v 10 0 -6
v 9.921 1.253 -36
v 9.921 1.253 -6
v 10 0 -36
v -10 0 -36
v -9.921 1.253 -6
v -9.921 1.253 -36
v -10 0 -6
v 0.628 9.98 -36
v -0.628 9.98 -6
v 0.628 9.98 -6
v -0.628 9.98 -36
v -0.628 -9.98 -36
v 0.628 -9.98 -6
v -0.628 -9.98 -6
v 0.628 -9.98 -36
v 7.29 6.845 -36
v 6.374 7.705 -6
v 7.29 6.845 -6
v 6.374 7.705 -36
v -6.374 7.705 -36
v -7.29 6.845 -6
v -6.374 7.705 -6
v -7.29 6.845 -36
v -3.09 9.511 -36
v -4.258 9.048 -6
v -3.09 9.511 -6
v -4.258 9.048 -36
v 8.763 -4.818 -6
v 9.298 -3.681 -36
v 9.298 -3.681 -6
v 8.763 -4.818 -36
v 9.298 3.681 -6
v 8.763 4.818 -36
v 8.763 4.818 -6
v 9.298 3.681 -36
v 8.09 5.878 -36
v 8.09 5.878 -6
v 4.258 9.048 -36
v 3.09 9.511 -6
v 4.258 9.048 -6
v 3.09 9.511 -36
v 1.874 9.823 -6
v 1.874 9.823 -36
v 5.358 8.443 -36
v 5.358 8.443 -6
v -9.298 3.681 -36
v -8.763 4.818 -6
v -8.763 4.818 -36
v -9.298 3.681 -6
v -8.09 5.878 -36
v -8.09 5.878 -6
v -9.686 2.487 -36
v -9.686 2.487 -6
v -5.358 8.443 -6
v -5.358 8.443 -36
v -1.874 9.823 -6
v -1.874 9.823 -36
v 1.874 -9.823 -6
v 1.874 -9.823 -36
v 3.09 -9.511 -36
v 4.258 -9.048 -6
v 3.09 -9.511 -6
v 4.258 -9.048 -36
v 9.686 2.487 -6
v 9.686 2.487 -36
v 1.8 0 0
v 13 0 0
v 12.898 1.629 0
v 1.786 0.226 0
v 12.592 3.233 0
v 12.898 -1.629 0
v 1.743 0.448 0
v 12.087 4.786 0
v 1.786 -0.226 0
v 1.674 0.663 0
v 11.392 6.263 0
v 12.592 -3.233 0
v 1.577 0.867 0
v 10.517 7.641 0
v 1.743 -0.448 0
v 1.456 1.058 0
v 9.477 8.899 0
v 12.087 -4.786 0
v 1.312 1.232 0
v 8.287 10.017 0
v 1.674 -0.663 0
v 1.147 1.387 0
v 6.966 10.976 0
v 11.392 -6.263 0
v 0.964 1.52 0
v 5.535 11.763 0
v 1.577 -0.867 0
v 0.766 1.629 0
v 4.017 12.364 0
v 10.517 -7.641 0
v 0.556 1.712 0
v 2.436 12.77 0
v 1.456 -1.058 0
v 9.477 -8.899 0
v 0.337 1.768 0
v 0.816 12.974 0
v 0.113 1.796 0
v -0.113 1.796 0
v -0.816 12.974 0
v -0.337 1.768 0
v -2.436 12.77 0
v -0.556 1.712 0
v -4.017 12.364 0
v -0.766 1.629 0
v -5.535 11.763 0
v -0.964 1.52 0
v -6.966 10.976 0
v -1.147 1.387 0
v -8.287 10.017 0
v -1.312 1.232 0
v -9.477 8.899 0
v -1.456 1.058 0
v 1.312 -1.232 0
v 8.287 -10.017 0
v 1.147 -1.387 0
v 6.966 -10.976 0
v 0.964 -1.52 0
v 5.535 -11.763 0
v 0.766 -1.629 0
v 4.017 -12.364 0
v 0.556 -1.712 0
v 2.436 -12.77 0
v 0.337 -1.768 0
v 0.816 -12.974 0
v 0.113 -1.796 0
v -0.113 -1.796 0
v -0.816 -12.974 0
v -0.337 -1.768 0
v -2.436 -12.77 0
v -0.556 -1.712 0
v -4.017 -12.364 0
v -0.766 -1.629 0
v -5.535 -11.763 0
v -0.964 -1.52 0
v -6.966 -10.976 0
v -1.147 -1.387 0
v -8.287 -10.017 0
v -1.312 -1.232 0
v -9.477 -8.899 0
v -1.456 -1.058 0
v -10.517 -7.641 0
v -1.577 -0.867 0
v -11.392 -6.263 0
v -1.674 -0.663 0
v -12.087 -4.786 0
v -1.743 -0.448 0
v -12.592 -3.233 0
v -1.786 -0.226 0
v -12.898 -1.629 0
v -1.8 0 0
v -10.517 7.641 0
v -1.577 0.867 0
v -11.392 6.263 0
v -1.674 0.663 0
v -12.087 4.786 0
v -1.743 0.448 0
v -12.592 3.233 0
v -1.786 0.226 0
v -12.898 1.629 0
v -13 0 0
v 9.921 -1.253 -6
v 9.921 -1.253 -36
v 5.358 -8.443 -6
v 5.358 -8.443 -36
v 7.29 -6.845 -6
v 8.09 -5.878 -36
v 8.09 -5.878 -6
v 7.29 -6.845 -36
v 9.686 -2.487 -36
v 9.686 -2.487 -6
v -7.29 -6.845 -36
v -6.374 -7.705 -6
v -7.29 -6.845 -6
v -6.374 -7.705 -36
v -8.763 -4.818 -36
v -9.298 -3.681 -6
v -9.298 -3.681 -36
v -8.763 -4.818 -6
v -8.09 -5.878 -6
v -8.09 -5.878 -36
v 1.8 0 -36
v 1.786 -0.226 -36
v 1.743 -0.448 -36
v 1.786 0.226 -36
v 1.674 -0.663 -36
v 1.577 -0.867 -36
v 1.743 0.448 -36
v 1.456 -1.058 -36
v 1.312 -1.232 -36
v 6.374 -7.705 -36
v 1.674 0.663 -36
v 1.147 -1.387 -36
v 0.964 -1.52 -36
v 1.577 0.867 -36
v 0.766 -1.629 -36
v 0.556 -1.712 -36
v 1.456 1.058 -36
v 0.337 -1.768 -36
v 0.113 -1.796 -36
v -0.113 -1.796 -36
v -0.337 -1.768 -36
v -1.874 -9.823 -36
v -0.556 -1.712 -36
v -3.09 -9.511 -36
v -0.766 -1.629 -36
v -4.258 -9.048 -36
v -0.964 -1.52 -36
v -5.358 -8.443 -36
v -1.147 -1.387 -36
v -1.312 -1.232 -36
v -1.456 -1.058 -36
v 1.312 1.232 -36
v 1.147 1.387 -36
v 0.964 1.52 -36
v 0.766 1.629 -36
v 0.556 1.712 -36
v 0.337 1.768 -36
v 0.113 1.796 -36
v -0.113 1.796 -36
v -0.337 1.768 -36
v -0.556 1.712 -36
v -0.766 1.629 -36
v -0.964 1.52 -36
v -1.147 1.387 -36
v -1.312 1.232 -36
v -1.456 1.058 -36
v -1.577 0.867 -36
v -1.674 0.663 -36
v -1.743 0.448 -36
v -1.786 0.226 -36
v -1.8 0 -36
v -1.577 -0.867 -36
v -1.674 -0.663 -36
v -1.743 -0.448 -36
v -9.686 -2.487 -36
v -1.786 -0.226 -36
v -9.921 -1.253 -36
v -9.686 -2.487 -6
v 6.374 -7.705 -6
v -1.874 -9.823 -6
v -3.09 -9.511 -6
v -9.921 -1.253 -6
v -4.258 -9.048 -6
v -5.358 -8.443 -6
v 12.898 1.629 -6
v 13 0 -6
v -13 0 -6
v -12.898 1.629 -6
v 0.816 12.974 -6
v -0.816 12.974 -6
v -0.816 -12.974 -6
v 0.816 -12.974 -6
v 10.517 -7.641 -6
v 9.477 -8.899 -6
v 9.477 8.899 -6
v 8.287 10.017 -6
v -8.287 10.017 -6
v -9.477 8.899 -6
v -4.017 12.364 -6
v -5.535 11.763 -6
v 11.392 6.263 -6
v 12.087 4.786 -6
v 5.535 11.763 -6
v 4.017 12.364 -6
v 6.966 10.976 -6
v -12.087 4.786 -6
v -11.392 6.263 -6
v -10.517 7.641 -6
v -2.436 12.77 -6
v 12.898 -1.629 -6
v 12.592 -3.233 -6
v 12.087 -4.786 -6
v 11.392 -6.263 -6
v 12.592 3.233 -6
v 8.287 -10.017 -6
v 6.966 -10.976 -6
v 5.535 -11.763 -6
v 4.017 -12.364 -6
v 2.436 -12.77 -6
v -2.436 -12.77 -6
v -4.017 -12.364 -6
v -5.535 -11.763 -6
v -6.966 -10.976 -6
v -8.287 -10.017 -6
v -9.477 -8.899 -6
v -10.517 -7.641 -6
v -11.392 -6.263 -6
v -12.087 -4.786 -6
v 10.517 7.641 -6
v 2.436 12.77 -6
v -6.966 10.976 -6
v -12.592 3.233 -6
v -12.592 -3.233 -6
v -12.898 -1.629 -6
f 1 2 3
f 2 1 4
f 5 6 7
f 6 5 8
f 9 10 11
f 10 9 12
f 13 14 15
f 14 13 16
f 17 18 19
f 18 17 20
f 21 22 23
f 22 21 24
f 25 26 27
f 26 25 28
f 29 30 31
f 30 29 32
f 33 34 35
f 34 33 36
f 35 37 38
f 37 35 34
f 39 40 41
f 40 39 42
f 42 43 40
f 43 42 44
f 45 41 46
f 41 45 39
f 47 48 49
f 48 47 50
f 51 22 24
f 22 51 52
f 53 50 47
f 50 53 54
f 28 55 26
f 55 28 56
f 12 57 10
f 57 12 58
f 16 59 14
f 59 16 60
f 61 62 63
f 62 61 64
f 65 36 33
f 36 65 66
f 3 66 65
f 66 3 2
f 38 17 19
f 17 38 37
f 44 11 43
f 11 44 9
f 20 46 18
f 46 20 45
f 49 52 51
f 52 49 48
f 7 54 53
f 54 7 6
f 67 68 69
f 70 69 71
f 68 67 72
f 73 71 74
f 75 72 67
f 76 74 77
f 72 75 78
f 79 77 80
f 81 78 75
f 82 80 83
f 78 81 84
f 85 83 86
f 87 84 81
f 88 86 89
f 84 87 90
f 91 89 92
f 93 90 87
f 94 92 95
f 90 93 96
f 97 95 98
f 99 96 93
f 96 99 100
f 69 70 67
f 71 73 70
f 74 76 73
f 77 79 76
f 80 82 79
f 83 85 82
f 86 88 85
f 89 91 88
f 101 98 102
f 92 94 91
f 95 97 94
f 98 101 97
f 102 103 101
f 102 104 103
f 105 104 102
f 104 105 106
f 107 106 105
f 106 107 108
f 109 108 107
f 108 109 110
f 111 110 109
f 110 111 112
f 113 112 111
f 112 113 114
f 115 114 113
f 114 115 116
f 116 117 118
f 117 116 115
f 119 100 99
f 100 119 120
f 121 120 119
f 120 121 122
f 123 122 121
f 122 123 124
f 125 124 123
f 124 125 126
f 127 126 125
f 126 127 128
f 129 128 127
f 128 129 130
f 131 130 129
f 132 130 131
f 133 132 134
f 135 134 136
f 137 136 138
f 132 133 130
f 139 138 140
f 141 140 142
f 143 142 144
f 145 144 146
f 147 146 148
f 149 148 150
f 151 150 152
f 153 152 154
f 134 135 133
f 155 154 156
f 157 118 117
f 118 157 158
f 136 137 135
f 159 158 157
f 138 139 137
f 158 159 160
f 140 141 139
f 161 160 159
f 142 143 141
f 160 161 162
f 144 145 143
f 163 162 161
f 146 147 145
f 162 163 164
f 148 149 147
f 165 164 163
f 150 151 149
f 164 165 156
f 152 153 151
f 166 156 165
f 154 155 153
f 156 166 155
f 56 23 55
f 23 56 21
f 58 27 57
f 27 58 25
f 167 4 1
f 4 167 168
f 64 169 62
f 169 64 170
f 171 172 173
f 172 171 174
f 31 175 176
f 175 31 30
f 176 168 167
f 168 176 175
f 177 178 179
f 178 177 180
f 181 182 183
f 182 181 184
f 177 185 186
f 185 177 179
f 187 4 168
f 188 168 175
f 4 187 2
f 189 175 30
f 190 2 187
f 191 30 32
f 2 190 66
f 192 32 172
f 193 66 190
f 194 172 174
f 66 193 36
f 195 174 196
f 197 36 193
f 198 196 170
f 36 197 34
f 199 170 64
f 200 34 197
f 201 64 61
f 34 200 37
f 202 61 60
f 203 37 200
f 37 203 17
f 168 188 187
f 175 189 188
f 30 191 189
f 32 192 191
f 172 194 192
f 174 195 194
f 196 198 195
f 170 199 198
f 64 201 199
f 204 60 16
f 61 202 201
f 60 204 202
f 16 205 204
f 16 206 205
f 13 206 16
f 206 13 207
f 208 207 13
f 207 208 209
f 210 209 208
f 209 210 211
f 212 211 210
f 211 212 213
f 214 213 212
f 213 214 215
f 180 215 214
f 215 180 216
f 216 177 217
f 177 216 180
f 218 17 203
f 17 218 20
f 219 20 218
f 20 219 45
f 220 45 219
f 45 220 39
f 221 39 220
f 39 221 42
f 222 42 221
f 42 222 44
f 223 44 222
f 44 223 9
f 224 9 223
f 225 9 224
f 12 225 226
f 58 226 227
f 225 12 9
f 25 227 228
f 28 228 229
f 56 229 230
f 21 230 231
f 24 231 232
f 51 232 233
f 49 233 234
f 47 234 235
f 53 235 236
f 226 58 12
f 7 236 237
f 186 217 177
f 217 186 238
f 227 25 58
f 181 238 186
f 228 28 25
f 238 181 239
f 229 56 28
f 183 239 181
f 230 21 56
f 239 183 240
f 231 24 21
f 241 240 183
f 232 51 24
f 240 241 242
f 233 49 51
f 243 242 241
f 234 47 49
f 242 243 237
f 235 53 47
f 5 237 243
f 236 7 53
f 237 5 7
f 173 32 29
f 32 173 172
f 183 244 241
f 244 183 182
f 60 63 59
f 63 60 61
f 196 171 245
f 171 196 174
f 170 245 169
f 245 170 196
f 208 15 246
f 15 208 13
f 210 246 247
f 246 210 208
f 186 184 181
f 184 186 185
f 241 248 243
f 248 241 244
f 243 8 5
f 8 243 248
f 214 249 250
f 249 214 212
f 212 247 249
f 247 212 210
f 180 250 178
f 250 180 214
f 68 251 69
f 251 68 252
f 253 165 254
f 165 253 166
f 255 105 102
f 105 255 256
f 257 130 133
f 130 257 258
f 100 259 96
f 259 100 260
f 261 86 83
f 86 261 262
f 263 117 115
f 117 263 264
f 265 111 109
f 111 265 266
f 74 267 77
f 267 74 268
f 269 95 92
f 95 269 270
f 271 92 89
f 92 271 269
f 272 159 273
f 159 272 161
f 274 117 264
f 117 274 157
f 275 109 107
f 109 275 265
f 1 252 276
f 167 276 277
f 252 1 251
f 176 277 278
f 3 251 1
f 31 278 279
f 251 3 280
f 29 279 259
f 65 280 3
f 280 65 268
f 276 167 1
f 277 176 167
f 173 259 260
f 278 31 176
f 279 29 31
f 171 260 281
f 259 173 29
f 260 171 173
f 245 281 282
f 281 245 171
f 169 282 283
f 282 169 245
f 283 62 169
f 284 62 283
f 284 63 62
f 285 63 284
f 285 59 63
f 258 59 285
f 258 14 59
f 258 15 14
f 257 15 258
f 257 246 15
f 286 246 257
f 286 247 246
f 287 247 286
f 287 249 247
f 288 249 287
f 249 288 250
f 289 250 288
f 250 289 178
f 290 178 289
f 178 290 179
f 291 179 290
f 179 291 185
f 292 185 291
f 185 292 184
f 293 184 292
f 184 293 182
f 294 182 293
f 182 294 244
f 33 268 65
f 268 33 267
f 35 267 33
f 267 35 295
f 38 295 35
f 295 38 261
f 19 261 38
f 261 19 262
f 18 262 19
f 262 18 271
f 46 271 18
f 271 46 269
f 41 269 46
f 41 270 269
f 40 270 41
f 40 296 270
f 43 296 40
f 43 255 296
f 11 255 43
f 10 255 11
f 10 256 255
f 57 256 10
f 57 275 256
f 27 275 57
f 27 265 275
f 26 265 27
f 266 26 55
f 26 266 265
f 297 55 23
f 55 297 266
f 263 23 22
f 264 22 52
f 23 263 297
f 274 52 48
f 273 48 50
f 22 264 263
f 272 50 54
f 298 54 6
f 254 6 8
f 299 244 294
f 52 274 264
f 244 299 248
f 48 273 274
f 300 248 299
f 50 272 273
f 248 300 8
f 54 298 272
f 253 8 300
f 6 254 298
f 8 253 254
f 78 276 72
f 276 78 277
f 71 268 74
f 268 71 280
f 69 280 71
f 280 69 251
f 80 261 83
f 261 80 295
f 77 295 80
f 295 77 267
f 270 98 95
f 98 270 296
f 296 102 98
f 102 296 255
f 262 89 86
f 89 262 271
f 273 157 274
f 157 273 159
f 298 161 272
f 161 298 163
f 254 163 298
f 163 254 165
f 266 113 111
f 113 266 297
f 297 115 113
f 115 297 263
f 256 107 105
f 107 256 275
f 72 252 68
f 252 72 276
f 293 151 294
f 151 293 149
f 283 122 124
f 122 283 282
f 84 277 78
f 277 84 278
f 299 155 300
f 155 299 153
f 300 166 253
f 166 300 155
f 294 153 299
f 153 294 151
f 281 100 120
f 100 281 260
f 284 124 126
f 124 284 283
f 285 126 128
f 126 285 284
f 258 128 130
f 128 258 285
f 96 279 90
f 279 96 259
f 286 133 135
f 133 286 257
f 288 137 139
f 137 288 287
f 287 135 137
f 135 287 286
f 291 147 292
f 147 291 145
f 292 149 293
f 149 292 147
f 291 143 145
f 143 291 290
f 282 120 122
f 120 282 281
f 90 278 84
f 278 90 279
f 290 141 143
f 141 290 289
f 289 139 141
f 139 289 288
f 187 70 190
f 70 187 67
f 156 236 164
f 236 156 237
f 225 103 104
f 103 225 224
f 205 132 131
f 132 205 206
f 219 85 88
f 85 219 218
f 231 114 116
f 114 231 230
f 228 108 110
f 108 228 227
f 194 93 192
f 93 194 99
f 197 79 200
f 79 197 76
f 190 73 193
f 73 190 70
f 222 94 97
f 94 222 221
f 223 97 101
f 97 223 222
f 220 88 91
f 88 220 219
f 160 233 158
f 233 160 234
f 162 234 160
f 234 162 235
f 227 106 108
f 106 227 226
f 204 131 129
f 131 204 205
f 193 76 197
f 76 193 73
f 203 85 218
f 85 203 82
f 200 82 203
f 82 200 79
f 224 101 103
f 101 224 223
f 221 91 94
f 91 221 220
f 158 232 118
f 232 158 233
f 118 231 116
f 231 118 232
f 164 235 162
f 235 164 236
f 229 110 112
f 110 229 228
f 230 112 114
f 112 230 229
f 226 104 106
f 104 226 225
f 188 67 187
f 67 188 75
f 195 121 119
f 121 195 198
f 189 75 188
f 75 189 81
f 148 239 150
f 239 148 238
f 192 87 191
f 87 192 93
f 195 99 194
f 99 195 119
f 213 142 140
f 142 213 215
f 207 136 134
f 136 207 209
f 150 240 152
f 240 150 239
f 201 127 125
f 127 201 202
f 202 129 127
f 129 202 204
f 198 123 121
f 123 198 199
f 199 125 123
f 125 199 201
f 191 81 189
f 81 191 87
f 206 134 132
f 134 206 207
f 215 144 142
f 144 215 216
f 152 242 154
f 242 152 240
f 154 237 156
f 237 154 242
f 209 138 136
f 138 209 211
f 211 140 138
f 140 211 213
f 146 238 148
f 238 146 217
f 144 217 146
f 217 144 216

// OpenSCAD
$fn = 50;


difference() {
	union() {
		translate(v = [0, 0, -36.0000000000]) {
			cylinder(h = 36, r = 10.0000000000);
		}
		translate(v = [0, 0, -6.0000000000]) {
			cylinder(h = 6, r = 13.0000000000);
		}
	}
	union() {
		#translate(v = [0, 0, -36]) {
			cylinder(h = 36, r = 1.8000000000);
		}
	}
}
